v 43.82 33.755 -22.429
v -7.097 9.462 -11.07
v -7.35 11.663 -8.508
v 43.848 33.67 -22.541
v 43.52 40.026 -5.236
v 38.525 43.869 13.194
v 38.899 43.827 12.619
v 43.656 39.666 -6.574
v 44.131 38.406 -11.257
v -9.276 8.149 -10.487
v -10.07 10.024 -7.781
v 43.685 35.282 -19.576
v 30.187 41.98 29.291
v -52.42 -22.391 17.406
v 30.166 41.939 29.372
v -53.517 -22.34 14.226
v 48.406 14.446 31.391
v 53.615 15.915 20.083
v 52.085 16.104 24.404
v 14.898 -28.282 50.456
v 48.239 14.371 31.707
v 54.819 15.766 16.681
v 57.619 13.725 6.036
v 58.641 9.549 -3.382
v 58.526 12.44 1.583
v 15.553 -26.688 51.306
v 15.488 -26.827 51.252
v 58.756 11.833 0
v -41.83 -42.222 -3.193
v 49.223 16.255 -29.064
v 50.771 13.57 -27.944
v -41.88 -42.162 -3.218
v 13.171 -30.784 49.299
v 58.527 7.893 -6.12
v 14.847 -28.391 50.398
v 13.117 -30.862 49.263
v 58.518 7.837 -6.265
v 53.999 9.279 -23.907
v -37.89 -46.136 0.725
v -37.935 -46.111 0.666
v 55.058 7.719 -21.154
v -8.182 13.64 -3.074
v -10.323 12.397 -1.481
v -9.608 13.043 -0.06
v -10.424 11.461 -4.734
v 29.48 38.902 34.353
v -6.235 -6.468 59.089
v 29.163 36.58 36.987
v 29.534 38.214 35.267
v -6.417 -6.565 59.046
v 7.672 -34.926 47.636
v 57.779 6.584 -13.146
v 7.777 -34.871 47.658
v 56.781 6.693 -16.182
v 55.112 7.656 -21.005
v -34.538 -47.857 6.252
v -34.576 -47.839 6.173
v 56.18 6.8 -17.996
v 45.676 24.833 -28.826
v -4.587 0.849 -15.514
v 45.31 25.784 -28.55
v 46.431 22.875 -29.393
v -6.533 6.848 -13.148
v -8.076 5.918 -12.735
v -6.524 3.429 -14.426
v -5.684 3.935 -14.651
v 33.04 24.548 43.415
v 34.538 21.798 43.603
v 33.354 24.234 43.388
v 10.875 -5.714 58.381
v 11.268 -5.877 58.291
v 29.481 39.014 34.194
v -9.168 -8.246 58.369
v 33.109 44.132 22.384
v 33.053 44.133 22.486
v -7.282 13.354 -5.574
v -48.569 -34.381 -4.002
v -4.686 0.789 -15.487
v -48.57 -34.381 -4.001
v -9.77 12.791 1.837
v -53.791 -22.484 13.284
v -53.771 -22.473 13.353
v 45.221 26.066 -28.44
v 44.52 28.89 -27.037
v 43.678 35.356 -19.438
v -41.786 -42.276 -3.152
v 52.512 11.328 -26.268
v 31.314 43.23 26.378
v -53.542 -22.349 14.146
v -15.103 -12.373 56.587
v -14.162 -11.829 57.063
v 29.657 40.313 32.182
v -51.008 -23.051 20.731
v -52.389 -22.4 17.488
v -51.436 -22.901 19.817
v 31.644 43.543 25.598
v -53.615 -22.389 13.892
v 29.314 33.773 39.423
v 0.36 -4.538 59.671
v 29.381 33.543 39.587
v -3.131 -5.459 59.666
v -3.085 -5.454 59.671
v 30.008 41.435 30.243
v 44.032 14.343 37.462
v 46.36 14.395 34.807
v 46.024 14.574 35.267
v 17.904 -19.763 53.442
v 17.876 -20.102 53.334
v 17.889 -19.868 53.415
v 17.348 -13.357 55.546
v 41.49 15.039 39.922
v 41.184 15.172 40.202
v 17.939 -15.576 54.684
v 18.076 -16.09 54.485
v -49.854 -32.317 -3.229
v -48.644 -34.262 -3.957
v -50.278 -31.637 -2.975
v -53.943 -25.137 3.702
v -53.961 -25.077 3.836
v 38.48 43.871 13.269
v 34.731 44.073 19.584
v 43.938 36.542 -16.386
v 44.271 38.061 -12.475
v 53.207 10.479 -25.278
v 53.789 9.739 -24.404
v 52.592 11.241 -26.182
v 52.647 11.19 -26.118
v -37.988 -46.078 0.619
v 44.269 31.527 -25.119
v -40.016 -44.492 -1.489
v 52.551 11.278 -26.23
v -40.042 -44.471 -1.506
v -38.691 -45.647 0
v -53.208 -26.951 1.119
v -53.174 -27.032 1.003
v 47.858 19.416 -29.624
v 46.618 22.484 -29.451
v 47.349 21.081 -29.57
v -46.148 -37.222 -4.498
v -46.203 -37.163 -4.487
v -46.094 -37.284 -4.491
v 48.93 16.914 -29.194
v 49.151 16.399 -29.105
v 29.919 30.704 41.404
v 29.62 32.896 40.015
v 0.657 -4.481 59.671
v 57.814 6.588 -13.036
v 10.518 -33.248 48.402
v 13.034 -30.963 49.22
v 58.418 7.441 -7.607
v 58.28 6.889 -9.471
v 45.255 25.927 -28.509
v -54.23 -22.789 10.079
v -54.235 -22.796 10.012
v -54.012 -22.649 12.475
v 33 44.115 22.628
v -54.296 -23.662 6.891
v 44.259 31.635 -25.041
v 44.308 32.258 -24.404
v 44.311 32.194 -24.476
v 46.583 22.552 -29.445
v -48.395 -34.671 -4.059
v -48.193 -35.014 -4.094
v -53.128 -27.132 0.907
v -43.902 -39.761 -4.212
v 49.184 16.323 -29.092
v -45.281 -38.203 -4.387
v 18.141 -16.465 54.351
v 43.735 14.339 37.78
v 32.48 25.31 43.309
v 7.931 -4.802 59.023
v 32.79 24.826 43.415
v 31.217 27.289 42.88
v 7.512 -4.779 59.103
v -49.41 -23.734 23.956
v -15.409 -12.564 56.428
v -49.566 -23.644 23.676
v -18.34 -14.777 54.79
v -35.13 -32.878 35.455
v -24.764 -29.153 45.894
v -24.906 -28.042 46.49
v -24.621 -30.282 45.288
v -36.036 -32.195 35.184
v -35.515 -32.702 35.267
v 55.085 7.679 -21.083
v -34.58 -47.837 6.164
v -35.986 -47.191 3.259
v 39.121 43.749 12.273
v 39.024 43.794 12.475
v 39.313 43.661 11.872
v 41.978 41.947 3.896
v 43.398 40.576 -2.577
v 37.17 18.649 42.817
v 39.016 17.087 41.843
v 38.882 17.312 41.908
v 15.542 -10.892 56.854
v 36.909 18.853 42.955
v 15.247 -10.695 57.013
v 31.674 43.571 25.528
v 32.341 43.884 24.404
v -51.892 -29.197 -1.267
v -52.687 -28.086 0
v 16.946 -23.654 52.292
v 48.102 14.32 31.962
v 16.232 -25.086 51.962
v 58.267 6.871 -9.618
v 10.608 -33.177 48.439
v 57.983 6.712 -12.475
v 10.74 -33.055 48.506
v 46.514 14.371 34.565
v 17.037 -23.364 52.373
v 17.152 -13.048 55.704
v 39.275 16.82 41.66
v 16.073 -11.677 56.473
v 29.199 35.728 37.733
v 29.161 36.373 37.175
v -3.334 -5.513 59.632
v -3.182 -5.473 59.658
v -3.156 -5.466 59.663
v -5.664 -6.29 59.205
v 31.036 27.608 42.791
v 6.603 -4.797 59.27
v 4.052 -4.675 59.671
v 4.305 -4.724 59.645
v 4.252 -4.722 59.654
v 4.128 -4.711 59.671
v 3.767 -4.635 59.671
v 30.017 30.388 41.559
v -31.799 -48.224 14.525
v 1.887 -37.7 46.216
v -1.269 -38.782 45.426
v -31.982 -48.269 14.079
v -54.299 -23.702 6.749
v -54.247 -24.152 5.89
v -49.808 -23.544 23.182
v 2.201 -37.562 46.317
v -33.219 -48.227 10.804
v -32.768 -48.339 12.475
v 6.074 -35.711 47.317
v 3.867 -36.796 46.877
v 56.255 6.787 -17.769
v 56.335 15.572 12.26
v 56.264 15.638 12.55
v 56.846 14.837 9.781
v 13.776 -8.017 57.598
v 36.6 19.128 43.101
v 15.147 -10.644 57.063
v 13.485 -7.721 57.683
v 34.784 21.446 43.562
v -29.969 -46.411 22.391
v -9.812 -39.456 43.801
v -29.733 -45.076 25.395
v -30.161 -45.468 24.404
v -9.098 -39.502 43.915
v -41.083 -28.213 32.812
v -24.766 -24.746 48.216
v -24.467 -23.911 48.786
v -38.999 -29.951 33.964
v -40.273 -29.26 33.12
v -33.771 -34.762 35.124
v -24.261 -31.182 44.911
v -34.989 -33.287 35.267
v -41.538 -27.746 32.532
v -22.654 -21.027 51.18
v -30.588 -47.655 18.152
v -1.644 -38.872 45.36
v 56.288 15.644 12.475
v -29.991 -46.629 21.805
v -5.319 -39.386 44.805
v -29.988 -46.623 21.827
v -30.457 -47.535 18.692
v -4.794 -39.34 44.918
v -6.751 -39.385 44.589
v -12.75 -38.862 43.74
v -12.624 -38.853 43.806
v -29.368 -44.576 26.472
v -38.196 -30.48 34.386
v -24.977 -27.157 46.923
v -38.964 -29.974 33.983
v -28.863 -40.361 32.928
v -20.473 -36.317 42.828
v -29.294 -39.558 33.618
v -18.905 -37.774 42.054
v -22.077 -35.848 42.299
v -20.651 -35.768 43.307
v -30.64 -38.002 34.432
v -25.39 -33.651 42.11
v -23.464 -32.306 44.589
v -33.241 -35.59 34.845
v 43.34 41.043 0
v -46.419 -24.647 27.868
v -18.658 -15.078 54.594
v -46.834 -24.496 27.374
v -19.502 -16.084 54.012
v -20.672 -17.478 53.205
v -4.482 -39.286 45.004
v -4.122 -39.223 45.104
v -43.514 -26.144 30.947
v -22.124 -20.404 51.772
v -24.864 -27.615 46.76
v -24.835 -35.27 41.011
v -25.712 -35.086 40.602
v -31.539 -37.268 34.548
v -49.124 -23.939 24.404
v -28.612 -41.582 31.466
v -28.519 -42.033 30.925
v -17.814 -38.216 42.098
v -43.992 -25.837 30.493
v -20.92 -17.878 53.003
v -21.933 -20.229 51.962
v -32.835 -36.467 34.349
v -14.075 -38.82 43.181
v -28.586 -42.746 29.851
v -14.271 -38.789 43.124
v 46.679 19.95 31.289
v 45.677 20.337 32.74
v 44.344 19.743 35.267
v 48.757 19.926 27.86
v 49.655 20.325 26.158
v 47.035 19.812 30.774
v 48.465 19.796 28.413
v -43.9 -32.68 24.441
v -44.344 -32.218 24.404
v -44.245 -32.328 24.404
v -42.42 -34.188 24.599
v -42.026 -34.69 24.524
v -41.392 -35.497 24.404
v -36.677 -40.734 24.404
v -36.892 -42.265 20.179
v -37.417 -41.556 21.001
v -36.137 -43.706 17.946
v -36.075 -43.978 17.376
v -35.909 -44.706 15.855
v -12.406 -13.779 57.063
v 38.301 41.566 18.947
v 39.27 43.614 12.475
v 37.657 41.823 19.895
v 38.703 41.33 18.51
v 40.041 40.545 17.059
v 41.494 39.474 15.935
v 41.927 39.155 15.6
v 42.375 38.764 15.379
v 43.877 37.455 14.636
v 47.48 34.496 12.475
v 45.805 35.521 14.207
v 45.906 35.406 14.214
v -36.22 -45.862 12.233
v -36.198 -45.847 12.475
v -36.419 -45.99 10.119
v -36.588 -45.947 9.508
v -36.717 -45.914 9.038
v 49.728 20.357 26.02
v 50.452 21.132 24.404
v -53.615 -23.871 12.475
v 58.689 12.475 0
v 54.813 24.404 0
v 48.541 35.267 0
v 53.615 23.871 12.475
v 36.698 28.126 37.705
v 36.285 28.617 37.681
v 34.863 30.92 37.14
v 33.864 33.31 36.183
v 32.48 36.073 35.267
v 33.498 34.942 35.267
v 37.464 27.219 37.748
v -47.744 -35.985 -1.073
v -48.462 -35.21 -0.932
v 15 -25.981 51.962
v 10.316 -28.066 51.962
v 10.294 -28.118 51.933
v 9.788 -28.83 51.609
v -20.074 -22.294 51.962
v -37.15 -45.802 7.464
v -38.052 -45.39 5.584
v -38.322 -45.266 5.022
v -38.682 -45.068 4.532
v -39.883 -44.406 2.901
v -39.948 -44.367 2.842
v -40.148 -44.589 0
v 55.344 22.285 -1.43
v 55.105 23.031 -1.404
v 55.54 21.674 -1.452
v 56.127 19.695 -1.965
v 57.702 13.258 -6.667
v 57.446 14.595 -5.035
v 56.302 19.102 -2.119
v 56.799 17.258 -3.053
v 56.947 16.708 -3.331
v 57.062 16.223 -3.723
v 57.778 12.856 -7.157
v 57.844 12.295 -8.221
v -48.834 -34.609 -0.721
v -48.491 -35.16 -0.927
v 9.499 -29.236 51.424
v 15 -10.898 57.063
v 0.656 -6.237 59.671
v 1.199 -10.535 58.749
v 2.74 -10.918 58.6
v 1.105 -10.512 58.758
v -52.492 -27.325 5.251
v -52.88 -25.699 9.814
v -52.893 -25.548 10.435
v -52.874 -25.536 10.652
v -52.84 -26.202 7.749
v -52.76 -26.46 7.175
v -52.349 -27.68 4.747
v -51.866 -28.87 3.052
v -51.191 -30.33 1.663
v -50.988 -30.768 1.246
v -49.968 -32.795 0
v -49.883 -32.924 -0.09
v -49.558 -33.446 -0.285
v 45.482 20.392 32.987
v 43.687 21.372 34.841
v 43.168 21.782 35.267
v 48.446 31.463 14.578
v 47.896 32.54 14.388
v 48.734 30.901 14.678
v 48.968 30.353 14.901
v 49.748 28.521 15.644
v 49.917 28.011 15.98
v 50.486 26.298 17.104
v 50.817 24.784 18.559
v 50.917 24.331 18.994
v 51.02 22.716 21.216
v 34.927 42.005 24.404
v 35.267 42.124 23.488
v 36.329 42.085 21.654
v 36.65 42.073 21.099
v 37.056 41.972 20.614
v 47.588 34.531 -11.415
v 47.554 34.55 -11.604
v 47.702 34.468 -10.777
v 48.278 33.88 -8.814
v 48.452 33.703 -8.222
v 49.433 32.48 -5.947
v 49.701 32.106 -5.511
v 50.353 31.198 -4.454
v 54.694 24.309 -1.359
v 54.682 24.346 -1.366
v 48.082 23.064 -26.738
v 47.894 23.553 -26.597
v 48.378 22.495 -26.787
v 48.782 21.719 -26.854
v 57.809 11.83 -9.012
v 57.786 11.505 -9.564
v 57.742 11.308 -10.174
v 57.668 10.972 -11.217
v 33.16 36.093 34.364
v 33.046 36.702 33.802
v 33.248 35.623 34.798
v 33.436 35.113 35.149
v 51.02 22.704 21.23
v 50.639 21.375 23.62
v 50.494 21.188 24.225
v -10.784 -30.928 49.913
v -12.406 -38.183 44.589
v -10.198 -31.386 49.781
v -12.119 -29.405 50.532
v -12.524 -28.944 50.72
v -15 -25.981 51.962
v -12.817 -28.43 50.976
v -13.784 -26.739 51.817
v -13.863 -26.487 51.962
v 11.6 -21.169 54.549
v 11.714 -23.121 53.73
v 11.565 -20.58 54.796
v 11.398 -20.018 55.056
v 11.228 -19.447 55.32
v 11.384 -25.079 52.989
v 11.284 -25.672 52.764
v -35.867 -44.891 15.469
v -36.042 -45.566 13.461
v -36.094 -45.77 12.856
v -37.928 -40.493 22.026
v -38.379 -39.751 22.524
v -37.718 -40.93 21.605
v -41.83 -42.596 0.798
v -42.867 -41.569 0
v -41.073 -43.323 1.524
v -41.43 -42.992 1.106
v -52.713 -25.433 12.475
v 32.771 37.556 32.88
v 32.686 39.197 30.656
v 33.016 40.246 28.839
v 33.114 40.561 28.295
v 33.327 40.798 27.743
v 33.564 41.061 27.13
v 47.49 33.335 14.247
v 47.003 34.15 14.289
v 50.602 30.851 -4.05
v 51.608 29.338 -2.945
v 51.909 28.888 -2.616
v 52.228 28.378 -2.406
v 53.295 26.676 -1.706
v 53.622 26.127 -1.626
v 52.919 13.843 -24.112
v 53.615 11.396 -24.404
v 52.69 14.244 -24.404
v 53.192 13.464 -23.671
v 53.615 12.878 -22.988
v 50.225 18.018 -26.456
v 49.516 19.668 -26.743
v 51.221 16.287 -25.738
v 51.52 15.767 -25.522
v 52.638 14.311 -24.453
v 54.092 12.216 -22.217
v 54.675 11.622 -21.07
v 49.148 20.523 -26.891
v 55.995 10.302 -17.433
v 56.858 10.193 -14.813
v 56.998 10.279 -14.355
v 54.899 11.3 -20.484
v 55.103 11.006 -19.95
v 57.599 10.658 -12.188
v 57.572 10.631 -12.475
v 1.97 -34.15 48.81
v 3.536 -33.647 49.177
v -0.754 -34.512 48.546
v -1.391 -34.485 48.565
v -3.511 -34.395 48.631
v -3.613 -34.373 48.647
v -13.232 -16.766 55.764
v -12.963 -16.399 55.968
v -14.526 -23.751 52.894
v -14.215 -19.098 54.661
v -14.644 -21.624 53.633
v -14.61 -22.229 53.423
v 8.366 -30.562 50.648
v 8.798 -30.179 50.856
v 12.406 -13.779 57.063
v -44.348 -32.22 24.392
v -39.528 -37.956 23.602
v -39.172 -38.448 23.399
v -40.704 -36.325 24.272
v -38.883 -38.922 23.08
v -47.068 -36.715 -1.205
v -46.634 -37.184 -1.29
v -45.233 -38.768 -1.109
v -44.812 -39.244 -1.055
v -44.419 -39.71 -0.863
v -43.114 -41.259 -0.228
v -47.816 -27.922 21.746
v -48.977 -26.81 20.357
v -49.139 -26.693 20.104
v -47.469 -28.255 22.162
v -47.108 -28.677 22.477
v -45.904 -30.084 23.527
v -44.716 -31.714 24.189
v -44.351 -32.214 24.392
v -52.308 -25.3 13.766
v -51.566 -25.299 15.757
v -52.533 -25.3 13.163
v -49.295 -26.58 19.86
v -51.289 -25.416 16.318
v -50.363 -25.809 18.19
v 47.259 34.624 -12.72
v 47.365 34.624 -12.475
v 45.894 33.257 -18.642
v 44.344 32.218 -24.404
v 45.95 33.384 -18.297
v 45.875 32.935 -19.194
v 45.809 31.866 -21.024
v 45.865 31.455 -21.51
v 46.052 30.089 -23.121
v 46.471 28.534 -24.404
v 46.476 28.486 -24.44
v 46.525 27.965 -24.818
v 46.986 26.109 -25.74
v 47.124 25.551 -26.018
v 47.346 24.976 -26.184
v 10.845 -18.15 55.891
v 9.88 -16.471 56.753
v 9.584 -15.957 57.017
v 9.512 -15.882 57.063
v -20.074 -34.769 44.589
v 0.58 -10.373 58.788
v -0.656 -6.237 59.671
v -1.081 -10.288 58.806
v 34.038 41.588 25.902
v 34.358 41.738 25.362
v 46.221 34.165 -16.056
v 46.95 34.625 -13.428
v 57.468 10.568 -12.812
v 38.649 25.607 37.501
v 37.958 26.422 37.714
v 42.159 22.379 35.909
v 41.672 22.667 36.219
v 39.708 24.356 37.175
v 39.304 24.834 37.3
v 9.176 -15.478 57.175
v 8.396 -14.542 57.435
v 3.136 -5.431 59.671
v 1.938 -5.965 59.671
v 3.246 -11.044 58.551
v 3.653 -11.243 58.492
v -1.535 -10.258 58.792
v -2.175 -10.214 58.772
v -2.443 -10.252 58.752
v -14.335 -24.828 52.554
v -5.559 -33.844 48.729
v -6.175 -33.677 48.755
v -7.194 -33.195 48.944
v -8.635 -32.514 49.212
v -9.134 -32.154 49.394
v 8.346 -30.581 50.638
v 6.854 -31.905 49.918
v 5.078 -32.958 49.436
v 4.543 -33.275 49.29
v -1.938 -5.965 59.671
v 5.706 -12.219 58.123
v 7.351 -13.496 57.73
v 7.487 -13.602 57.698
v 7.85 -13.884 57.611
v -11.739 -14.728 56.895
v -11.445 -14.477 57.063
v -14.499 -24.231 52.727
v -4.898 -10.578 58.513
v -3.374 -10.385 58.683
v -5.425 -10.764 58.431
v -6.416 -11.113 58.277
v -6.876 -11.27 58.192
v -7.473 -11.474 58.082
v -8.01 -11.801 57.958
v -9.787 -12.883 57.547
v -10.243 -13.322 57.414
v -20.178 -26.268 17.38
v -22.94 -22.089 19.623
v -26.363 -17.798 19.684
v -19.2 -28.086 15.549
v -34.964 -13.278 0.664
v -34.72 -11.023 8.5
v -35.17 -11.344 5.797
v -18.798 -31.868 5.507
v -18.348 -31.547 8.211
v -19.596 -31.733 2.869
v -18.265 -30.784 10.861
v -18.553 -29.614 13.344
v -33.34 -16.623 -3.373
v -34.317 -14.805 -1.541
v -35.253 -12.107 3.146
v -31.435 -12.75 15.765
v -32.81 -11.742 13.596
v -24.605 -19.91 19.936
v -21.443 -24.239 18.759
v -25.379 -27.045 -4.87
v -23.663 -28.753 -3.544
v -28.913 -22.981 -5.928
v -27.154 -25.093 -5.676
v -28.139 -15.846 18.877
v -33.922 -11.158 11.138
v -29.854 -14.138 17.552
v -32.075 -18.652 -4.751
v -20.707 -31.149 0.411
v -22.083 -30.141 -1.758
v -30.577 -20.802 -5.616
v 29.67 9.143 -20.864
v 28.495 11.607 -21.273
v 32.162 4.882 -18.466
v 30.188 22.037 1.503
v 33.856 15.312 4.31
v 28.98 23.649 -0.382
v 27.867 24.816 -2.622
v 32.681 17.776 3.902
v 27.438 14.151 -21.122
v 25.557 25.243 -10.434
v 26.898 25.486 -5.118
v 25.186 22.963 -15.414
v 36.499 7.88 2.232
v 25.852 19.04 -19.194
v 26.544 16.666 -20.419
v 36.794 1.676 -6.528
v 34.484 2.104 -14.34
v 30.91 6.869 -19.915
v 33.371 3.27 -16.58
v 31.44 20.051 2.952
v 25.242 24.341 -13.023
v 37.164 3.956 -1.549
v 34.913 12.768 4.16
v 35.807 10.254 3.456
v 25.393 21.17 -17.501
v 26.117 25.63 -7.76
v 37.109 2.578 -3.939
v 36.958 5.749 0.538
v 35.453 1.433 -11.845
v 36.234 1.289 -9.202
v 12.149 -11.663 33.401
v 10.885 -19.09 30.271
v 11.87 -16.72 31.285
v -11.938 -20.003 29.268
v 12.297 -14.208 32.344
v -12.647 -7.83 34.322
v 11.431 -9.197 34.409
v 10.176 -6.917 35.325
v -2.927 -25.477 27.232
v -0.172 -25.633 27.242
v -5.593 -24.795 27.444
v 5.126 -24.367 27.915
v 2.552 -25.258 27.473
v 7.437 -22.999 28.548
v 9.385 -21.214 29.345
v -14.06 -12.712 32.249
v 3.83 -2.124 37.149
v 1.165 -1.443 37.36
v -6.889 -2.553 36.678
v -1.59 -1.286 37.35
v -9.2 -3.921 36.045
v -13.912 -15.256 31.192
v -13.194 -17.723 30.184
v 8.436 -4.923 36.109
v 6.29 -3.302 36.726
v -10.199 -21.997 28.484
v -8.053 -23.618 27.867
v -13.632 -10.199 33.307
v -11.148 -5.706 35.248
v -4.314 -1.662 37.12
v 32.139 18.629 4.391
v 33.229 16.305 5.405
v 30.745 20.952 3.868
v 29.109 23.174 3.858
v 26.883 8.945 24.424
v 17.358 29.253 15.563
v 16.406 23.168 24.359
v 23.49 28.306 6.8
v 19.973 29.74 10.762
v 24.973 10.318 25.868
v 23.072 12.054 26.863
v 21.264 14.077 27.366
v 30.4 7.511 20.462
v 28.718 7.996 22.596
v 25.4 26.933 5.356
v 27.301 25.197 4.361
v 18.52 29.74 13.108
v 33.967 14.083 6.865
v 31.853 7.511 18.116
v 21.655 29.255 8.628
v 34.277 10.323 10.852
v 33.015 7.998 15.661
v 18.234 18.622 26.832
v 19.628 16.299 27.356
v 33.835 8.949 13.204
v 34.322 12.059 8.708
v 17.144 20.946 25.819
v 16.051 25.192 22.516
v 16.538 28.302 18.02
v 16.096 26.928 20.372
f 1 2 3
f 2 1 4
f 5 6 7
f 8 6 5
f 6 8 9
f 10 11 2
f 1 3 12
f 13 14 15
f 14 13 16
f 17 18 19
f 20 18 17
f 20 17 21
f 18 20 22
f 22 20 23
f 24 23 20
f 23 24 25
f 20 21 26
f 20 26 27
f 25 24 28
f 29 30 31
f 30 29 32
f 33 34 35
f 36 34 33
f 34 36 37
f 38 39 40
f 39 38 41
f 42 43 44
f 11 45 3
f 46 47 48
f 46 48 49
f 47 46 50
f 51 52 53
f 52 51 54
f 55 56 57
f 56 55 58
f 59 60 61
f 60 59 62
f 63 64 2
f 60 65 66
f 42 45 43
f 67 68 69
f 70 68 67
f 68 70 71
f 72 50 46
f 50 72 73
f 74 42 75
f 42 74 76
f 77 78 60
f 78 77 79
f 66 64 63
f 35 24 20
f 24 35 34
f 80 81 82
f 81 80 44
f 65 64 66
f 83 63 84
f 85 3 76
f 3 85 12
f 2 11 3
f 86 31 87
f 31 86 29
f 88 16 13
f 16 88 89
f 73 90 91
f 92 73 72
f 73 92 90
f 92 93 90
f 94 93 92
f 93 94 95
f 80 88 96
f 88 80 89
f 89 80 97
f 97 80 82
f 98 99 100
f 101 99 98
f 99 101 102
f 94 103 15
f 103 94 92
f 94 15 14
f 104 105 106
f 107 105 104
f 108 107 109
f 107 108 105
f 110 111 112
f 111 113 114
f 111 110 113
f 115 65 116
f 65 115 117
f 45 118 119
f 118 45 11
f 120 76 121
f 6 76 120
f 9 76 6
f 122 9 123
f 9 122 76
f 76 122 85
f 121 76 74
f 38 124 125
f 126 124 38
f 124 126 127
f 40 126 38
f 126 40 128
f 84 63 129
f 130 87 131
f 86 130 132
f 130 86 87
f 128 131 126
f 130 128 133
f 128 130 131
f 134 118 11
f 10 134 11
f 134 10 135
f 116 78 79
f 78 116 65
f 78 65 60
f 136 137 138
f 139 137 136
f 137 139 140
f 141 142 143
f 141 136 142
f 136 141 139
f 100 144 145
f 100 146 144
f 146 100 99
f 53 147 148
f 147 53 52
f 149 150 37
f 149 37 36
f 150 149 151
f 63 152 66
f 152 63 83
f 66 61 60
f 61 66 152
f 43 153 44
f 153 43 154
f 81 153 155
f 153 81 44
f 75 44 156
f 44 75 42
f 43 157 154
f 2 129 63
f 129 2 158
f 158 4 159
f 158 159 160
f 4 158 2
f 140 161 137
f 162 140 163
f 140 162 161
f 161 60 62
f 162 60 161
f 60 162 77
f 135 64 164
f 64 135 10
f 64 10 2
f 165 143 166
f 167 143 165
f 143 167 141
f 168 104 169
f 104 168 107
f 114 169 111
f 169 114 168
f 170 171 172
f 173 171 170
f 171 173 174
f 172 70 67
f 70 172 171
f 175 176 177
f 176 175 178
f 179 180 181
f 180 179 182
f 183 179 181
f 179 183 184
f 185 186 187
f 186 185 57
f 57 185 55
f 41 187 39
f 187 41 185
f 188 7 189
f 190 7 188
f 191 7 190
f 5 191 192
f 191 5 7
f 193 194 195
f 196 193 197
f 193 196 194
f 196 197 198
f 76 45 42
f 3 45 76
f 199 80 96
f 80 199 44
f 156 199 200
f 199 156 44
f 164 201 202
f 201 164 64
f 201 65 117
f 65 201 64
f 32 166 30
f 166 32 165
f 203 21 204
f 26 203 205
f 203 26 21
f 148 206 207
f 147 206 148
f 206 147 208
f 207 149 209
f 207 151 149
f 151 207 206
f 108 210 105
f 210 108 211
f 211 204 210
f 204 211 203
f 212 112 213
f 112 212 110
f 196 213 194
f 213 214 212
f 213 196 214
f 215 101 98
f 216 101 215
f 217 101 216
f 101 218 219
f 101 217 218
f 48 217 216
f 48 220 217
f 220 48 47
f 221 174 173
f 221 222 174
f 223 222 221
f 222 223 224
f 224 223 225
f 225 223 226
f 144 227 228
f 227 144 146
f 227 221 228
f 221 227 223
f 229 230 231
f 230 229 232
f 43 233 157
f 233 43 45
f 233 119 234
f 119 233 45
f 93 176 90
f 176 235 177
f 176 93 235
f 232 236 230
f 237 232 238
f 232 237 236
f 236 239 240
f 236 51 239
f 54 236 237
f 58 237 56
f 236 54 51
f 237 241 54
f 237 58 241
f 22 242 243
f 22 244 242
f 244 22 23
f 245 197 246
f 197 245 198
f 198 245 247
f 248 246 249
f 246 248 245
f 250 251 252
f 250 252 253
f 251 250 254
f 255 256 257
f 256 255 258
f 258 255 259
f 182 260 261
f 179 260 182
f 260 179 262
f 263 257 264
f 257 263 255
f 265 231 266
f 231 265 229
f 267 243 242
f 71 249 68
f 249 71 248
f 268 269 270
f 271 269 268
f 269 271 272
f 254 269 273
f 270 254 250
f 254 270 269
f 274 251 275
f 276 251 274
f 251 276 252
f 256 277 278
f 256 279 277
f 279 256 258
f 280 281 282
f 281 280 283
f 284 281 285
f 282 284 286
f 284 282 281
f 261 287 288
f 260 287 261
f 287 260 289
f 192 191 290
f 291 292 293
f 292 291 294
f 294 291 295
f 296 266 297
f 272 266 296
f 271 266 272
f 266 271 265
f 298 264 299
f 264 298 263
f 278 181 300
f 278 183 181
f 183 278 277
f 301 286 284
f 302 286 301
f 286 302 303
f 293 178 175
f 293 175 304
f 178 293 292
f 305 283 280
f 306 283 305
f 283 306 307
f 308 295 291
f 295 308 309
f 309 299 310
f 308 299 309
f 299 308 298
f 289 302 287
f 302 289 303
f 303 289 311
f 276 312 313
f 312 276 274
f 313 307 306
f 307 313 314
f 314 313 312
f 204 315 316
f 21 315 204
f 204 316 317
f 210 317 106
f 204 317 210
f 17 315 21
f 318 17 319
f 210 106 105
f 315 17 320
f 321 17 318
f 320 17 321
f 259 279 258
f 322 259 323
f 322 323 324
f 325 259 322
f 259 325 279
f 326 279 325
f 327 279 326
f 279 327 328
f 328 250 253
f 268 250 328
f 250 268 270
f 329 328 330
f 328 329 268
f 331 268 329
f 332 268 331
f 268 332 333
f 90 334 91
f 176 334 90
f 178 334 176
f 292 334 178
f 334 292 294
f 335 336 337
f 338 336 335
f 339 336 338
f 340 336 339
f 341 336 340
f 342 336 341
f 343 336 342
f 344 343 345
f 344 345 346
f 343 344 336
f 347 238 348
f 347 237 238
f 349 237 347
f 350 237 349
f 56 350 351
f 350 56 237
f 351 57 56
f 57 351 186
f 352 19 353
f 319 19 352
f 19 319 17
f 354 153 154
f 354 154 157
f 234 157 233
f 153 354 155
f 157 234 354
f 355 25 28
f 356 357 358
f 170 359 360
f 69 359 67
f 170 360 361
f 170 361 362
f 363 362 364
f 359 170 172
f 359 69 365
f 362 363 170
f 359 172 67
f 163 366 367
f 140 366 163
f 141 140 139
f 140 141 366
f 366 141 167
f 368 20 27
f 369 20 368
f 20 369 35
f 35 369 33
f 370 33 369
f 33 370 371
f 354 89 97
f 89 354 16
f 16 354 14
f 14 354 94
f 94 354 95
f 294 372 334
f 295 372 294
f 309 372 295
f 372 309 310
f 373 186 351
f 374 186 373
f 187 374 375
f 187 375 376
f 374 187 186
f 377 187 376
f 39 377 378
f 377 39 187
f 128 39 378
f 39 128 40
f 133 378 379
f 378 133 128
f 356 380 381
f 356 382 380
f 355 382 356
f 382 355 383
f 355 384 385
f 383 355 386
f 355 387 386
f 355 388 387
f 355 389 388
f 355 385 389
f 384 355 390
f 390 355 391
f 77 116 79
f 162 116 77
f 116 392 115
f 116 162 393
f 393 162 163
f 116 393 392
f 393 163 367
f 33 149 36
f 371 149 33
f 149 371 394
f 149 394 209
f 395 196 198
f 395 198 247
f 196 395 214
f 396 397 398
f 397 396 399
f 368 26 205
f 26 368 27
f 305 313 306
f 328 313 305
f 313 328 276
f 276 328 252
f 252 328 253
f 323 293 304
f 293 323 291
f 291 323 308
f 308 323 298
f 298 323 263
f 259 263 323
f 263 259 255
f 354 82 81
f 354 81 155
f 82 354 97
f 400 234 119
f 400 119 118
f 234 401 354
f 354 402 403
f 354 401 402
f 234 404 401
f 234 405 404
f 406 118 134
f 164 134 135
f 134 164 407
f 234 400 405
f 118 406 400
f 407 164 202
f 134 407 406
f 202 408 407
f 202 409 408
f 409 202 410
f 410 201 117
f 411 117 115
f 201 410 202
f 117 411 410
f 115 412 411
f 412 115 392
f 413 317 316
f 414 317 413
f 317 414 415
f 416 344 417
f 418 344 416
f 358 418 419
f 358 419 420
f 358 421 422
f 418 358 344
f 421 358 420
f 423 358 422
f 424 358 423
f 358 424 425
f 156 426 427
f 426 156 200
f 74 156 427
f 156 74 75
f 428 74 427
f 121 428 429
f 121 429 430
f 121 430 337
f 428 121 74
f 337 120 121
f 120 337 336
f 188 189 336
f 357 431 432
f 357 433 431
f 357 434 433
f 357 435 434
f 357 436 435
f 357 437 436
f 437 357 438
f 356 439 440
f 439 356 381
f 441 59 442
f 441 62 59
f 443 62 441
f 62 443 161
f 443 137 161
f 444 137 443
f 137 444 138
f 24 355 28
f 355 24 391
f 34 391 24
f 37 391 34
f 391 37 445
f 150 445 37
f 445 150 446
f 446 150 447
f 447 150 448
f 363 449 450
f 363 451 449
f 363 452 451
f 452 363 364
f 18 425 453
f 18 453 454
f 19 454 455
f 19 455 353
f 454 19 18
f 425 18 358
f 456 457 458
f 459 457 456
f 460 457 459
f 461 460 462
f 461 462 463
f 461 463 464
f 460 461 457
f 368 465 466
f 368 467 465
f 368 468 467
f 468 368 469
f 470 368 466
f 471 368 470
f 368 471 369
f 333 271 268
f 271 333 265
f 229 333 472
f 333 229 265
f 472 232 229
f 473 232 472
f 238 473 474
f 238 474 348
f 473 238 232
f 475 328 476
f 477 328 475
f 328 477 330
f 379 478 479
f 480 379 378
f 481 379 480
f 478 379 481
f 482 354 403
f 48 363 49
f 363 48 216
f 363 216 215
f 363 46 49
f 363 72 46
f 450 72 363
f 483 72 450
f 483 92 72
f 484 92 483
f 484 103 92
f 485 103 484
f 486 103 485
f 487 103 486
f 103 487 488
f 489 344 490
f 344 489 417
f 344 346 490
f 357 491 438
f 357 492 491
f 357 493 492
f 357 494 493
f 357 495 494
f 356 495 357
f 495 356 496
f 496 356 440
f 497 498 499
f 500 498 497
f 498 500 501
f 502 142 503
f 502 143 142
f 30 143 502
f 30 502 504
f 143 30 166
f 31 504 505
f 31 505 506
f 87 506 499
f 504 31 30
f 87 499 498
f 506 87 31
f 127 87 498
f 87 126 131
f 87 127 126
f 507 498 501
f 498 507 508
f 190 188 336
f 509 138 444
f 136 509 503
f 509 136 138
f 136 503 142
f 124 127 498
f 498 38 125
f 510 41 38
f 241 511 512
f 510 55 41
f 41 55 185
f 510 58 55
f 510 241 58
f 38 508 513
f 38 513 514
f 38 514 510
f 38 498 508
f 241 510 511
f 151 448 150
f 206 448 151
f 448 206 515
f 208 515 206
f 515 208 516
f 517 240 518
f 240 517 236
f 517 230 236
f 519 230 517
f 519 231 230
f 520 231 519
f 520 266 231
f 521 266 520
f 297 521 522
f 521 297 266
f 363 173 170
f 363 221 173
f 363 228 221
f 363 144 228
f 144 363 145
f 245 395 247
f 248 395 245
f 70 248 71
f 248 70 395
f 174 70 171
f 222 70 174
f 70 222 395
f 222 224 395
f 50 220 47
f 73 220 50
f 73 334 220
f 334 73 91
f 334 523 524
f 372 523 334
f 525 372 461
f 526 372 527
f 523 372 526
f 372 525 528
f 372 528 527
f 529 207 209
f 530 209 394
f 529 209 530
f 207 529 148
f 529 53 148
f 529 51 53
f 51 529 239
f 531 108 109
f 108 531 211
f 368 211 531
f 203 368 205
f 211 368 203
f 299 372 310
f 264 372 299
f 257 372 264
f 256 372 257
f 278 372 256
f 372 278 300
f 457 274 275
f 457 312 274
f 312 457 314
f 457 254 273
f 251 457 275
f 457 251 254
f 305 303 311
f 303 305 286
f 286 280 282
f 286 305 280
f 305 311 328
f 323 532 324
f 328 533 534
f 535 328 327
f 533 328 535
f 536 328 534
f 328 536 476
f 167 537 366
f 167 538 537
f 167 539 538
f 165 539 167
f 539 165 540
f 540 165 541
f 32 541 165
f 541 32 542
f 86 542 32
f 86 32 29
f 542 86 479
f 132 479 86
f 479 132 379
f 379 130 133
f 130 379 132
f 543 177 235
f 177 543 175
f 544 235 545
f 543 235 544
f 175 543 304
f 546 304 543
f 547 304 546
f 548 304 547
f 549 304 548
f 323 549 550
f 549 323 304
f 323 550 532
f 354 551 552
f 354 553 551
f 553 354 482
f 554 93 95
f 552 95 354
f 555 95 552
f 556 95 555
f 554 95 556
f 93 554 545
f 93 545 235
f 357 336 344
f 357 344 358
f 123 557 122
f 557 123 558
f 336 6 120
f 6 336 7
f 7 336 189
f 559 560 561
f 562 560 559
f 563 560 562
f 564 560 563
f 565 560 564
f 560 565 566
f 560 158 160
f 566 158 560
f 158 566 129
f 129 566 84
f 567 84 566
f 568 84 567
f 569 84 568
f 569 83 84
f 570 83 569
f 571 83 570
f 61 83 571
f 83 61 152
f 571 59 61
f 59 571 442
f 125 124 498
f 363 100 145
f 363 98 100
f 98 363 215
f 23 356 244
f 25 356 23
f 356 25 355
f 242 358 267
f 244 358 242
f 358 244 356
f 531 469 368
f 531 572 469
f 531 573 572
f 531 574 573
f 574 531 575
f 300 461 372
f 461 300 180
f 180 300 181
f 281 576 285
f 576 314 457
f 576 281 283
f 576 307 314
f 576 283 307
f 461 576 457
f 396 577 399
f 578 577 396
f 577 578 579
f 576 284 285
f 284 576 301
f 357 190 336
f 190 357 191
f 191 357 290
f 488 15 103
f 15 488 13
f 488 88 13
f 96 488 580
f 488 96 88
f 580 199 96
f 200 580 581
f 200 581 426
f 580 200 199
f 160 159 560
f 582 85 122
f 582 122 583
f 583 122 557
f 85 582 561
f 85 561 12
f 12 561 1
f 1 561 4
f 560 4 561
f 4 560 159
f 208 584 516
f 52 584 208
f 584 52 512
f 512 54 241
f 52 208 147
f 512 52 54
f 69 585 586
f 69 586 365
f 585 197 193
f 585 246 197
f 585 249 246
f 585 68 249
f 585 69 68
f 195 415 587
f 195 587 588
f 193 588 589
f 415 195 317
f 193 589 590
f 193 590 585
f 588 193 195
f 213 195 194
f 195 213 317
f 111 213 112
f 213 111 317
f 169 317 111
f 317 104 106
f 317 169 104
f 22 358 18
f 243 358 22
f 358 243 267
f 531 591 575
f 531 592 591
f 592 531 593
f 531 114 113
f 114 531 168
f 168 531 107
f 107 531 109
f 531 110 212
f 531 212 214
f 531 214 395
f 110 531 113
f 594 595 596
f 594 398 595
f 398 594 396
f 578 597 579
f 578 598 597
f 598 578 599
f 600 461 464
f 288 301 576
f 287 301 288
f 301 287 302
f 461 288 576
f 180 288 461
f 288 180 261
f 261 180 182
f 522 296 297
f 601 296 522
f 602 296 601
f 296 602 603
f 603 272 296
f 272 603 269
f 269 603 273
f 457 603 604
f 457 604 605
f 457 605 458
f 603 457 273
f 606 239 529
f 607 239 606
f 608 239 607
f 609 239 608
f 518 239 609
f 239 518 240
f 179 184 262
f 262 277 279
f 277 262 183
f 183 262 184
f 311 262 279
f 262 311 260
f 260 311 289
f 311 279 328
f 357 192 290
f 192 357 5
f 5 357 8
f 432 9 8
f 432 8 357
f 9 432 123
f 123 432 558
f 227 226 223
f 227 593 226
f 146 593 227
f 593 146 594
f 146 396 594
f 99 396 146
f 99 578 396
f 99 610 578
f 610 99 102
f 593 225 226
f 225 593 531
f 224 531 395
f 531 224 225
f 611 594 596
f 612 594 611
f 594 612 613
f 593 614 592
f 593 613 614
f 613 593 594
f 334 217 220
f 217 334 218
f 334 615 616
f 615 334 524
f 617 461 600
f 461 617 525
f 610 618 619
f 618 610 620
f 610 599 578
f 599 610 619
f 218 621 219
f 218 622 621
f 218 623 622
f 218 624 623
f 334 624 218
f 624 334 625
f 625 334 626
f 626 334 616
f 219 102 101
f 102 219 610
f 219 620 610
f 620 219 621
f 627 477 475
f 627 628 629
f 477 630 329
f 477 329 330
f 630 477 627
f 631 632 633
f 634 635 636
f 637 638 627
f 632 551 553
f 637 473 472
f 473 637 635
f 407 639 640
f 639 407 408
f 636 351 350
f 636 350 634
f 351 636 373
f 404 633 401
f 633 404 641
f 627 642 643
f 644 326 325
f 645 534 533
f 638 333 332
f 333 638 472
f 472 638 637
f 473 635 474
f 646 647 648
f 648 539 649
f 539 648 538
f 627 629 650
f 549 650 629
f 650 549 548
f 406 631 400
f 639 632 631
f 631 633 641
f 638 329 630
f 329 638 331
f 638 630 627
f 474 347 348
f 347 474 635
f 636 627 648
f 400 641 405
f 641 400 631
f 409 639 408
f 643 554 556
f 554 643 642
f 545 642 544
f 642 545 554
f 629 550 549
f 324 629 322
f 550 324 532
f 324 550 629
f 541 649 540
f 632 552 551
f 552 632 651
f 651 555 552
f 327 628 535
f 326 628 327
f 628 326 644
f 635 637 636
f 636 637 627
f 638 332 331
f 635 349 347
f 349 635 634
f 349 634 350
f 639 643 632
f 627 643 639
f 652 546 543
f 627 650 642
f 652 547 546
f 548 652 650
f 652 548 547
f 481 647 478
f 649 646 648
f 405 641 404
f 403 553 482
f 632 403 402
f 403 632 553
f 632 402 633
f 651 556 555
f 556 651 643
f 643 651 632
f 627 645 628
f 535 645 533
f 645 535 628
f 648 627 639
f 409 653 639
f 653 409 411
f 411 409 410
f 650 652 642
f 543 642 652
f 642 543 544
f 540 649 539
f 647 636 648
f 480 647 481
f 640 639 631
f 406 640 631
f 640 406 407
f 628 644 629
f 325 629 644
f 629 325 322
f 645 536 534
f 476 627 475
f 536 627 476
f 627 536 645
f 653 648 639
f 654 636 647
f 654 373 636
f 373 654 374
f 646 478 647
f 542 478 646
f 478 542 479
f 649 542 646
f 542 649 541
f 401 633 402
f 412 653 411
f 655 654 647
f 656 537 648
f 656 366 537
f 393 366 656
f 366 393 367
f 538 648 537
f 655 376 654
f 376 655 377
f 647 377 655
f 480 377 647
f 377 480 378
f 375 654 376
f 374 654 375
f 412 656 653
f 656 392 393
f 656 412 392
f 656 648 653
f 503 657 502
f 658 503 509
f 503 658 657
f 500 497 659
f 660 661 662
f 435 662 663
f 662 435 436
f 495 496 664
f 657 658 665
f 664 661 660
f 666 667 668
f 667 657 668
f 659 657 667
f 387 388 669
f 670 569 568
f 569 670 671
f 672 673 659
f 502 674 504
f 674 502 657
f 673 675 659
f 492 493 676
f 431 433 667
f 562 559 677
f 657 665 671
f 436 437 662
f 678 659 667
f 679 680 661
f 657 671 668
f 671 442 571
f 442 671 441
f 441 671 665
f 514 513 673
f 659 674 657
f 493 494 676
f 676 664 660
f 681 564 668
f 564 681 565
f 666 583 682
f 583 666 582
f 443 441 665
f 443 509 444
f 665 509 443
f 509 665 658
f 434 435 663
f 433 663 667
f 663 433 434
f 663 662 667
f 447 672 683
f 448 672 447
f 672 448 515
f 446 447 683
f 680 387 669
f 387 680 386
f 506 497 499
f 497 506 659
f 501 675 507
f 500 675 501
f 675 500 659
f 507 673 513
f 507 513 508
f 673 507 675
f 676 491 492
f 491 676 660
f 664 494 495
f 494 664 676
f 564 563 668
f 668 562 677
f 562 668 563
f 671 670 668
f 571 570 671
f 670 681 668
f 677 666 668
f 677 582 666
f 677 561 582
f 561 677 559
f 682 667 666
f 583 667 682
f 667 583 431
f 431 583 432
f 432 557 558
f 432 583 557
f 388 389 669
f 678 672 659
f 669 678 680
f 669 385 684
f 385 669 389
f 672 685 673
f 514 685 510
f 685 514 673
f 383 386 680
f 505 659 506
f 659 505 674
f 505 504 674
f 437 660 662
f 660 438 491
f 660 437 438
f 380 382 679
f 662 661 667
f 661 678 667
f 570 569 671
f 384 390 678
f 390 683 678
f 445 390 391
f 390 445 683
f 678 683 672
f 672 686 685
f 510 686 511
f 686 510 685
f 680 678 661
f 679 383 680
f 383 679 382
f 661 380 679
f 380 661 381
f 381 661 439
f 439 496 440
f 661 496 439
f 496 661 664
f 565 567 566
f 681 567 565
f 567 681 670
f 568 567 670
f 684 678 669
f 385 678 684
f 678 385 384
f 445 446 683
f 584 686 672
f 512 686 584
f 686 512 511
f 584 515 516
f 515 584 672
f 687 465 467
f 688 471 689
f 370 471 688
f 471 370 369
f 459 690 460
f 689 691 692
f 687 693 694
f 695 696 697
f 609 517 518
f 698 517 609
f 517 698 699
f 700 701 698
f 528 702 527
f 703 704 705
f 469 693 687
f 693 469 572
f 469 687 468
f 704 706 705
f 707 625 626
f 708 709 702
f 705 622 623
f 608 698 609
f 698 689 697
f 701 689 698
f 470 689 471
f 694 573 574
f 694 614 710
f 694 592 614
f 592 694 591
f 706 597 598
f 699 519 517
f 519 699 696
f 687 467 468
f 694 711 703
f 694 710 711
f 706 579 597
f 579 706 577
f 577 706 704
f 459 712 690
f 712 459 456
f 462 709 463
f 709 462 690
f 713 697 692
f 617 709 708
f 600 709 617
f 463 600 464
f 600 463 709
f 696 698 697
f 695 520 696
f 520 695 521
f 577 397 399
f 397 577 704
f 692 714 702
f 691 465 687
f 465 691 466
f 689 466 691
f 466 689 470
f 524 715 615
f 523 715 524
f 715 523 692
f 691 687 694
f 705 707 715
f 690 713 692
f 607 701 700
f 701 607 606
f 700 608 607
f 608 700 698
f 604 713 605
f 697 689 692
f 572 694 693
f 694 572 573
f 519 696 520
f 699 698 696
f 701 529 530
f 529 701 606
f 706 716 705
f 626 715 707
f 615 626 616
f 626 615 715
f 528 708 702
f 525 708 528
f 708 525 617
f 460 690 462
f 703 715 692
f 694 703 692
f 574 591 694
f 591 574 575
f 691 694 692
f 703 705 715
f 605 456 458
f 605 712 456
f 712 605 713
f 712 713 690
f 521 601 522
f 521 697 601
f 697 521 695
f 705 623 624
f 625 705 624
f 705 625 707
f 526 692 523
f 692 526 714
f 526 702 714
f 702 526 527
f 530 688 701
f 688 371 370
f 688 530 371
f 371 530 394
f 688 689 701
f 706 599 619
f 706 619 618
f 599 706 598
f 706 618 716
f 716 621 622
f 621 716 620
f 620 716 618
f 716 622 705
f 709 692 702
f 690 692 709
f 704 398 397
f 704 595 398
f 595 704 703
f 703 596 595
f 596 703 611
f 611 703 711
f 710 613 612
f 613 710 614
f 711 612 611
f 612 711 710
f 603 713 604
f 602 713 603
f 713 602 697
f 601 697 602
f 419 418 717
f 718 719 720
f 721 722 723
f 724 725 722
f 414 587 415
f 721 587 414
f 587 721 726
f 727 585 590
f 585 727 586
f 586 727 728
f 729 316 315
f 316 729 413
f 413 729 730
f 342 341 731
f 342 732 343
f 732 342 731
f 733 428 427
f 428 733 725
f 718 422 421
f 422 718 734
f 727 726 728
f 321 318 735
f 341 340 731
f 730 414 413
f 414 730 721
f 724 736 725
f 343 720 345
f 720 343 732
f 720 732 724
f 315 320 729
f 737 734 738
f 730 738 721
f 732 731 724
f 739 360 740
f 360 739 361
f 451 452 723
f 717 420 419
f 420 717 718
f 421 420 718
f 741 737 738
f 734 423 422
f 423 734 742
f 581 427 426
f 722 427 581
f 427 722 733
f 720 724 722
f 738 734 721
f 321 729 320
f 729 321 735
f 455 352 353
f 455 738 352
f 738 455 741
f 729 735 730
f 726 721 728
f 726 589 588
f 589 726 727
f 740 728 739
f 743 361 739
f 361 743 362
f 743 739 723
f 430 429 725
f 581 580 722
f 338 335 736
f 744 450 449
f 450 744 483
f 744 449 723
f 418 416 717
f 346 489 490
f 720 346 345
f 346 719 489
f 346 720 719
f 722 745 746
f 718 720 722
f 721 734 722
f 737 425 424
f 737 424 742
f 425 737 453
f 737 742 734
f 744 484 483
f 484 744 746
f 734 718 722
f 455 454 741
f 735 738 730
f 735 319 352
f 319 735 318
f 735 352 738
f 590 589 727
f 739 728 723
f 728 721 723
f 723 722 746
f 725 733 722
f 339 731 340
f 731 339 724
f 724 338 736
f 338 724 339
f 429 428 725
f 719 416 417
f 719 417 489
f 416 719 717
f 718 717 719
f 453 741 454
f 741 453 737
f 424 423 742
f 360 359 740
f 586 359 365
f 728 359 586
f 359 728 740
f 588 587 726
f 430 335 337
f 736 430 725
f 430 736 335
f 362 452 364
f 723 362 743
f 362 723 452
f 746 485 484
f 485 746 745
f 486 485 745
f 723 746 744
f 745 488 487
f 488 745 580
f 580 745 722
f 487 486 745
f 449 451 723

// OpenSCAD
difference() {
	intersection() {
		hull() {
			rotate(a = -15.9318645053, v = [-0.0268251040, -0.2731801449, 0.0000000000]) {
				rotate(a = -90.0000000000, v = [-0.6099942813, 0.7924058157, 0.0000000000]) {
					cylinder(h = 60, r = 16.2000000000);
				}
			}
			rotate(a = -15.9318645053, v = [-0.0268251040, -0.2731801449, 0.0000000000]) {
				rotate(a = -90.0000000000, v = [0.3812464258, -0.9244734516, 0.0000000000]) {
					cylinder(h = 60, r = 16.2000000000);
				}
			}
			rotate(a = -15.9318645053, v = [-0.0268251040, -0.2731801449, 0.0000000000]) {
				rotate(a = -27.0328006209, v = [-0.3597678492, 0.2777369369, 0.0000000000]) {
					cylinder(h = 60, r = 16.2000000000);
				}
			}
			rotate(a = -15.9318645053, v = [-0.0268251040, -0.2731801449, 0.0000000000]) {
				rotate(a = -52.3213918087, v = [0.5466155518, -0.5723699713, 0.0000000000]) {
					cylinder(h = 60, r = 16.2000000000);
				}
			}
		}
		sphere(r = 60);
	}
	union() {
		rotate(a = -15.9318645053, v = [-0.0268251040, -0.2731801449, 0.0000000000]) {
			rotate(a = -90.0000000000, v = [-0.6099942813, 0.7924058157, 0.0000000000]) {
				translate(v = [0, 0, 35]) {
					cylinder(h = 100, r = 13.2000000000);
				}
			}
		}
		rotate(a = -15.9318645053, v = [-0.0268251040, -0.2731801449, 0.0000000000]) {
			rotate(a = -90.0000000000, v = [0.3812464258, -0.9244734516, 0.0000000000]) {
				translate(v = [0, 0, 35]) {
					cylinder(h = 100, r = 13.2000000000);
				}
			}
		}
		rotate(a = -15.9318645053, v = [-0.0268251040, -0.2731801449, 0.0000000000]) {
			rotate(a = -27.0328006209, v = [-0.3597678492, 0.2777369369, 0.0000000000]) {
				translate(v = [0, 0, 35]) {
					cylinder(h = 100, r = 13.2000000000);
				}
			}
		}
		rotate(a = -15.9318645053, v = [-0.0268251040, -0.2731801449, 0.0000000000]) {
			rotate(a = -52.3213918087, v = [0.5466155518, -0.5723699713, 0.0000000000]) {
				translate(v = [0, 0, 35]) {
					cylinder(h = 100, r = 13.2000000000);
				}
			}
		}
	}
}
